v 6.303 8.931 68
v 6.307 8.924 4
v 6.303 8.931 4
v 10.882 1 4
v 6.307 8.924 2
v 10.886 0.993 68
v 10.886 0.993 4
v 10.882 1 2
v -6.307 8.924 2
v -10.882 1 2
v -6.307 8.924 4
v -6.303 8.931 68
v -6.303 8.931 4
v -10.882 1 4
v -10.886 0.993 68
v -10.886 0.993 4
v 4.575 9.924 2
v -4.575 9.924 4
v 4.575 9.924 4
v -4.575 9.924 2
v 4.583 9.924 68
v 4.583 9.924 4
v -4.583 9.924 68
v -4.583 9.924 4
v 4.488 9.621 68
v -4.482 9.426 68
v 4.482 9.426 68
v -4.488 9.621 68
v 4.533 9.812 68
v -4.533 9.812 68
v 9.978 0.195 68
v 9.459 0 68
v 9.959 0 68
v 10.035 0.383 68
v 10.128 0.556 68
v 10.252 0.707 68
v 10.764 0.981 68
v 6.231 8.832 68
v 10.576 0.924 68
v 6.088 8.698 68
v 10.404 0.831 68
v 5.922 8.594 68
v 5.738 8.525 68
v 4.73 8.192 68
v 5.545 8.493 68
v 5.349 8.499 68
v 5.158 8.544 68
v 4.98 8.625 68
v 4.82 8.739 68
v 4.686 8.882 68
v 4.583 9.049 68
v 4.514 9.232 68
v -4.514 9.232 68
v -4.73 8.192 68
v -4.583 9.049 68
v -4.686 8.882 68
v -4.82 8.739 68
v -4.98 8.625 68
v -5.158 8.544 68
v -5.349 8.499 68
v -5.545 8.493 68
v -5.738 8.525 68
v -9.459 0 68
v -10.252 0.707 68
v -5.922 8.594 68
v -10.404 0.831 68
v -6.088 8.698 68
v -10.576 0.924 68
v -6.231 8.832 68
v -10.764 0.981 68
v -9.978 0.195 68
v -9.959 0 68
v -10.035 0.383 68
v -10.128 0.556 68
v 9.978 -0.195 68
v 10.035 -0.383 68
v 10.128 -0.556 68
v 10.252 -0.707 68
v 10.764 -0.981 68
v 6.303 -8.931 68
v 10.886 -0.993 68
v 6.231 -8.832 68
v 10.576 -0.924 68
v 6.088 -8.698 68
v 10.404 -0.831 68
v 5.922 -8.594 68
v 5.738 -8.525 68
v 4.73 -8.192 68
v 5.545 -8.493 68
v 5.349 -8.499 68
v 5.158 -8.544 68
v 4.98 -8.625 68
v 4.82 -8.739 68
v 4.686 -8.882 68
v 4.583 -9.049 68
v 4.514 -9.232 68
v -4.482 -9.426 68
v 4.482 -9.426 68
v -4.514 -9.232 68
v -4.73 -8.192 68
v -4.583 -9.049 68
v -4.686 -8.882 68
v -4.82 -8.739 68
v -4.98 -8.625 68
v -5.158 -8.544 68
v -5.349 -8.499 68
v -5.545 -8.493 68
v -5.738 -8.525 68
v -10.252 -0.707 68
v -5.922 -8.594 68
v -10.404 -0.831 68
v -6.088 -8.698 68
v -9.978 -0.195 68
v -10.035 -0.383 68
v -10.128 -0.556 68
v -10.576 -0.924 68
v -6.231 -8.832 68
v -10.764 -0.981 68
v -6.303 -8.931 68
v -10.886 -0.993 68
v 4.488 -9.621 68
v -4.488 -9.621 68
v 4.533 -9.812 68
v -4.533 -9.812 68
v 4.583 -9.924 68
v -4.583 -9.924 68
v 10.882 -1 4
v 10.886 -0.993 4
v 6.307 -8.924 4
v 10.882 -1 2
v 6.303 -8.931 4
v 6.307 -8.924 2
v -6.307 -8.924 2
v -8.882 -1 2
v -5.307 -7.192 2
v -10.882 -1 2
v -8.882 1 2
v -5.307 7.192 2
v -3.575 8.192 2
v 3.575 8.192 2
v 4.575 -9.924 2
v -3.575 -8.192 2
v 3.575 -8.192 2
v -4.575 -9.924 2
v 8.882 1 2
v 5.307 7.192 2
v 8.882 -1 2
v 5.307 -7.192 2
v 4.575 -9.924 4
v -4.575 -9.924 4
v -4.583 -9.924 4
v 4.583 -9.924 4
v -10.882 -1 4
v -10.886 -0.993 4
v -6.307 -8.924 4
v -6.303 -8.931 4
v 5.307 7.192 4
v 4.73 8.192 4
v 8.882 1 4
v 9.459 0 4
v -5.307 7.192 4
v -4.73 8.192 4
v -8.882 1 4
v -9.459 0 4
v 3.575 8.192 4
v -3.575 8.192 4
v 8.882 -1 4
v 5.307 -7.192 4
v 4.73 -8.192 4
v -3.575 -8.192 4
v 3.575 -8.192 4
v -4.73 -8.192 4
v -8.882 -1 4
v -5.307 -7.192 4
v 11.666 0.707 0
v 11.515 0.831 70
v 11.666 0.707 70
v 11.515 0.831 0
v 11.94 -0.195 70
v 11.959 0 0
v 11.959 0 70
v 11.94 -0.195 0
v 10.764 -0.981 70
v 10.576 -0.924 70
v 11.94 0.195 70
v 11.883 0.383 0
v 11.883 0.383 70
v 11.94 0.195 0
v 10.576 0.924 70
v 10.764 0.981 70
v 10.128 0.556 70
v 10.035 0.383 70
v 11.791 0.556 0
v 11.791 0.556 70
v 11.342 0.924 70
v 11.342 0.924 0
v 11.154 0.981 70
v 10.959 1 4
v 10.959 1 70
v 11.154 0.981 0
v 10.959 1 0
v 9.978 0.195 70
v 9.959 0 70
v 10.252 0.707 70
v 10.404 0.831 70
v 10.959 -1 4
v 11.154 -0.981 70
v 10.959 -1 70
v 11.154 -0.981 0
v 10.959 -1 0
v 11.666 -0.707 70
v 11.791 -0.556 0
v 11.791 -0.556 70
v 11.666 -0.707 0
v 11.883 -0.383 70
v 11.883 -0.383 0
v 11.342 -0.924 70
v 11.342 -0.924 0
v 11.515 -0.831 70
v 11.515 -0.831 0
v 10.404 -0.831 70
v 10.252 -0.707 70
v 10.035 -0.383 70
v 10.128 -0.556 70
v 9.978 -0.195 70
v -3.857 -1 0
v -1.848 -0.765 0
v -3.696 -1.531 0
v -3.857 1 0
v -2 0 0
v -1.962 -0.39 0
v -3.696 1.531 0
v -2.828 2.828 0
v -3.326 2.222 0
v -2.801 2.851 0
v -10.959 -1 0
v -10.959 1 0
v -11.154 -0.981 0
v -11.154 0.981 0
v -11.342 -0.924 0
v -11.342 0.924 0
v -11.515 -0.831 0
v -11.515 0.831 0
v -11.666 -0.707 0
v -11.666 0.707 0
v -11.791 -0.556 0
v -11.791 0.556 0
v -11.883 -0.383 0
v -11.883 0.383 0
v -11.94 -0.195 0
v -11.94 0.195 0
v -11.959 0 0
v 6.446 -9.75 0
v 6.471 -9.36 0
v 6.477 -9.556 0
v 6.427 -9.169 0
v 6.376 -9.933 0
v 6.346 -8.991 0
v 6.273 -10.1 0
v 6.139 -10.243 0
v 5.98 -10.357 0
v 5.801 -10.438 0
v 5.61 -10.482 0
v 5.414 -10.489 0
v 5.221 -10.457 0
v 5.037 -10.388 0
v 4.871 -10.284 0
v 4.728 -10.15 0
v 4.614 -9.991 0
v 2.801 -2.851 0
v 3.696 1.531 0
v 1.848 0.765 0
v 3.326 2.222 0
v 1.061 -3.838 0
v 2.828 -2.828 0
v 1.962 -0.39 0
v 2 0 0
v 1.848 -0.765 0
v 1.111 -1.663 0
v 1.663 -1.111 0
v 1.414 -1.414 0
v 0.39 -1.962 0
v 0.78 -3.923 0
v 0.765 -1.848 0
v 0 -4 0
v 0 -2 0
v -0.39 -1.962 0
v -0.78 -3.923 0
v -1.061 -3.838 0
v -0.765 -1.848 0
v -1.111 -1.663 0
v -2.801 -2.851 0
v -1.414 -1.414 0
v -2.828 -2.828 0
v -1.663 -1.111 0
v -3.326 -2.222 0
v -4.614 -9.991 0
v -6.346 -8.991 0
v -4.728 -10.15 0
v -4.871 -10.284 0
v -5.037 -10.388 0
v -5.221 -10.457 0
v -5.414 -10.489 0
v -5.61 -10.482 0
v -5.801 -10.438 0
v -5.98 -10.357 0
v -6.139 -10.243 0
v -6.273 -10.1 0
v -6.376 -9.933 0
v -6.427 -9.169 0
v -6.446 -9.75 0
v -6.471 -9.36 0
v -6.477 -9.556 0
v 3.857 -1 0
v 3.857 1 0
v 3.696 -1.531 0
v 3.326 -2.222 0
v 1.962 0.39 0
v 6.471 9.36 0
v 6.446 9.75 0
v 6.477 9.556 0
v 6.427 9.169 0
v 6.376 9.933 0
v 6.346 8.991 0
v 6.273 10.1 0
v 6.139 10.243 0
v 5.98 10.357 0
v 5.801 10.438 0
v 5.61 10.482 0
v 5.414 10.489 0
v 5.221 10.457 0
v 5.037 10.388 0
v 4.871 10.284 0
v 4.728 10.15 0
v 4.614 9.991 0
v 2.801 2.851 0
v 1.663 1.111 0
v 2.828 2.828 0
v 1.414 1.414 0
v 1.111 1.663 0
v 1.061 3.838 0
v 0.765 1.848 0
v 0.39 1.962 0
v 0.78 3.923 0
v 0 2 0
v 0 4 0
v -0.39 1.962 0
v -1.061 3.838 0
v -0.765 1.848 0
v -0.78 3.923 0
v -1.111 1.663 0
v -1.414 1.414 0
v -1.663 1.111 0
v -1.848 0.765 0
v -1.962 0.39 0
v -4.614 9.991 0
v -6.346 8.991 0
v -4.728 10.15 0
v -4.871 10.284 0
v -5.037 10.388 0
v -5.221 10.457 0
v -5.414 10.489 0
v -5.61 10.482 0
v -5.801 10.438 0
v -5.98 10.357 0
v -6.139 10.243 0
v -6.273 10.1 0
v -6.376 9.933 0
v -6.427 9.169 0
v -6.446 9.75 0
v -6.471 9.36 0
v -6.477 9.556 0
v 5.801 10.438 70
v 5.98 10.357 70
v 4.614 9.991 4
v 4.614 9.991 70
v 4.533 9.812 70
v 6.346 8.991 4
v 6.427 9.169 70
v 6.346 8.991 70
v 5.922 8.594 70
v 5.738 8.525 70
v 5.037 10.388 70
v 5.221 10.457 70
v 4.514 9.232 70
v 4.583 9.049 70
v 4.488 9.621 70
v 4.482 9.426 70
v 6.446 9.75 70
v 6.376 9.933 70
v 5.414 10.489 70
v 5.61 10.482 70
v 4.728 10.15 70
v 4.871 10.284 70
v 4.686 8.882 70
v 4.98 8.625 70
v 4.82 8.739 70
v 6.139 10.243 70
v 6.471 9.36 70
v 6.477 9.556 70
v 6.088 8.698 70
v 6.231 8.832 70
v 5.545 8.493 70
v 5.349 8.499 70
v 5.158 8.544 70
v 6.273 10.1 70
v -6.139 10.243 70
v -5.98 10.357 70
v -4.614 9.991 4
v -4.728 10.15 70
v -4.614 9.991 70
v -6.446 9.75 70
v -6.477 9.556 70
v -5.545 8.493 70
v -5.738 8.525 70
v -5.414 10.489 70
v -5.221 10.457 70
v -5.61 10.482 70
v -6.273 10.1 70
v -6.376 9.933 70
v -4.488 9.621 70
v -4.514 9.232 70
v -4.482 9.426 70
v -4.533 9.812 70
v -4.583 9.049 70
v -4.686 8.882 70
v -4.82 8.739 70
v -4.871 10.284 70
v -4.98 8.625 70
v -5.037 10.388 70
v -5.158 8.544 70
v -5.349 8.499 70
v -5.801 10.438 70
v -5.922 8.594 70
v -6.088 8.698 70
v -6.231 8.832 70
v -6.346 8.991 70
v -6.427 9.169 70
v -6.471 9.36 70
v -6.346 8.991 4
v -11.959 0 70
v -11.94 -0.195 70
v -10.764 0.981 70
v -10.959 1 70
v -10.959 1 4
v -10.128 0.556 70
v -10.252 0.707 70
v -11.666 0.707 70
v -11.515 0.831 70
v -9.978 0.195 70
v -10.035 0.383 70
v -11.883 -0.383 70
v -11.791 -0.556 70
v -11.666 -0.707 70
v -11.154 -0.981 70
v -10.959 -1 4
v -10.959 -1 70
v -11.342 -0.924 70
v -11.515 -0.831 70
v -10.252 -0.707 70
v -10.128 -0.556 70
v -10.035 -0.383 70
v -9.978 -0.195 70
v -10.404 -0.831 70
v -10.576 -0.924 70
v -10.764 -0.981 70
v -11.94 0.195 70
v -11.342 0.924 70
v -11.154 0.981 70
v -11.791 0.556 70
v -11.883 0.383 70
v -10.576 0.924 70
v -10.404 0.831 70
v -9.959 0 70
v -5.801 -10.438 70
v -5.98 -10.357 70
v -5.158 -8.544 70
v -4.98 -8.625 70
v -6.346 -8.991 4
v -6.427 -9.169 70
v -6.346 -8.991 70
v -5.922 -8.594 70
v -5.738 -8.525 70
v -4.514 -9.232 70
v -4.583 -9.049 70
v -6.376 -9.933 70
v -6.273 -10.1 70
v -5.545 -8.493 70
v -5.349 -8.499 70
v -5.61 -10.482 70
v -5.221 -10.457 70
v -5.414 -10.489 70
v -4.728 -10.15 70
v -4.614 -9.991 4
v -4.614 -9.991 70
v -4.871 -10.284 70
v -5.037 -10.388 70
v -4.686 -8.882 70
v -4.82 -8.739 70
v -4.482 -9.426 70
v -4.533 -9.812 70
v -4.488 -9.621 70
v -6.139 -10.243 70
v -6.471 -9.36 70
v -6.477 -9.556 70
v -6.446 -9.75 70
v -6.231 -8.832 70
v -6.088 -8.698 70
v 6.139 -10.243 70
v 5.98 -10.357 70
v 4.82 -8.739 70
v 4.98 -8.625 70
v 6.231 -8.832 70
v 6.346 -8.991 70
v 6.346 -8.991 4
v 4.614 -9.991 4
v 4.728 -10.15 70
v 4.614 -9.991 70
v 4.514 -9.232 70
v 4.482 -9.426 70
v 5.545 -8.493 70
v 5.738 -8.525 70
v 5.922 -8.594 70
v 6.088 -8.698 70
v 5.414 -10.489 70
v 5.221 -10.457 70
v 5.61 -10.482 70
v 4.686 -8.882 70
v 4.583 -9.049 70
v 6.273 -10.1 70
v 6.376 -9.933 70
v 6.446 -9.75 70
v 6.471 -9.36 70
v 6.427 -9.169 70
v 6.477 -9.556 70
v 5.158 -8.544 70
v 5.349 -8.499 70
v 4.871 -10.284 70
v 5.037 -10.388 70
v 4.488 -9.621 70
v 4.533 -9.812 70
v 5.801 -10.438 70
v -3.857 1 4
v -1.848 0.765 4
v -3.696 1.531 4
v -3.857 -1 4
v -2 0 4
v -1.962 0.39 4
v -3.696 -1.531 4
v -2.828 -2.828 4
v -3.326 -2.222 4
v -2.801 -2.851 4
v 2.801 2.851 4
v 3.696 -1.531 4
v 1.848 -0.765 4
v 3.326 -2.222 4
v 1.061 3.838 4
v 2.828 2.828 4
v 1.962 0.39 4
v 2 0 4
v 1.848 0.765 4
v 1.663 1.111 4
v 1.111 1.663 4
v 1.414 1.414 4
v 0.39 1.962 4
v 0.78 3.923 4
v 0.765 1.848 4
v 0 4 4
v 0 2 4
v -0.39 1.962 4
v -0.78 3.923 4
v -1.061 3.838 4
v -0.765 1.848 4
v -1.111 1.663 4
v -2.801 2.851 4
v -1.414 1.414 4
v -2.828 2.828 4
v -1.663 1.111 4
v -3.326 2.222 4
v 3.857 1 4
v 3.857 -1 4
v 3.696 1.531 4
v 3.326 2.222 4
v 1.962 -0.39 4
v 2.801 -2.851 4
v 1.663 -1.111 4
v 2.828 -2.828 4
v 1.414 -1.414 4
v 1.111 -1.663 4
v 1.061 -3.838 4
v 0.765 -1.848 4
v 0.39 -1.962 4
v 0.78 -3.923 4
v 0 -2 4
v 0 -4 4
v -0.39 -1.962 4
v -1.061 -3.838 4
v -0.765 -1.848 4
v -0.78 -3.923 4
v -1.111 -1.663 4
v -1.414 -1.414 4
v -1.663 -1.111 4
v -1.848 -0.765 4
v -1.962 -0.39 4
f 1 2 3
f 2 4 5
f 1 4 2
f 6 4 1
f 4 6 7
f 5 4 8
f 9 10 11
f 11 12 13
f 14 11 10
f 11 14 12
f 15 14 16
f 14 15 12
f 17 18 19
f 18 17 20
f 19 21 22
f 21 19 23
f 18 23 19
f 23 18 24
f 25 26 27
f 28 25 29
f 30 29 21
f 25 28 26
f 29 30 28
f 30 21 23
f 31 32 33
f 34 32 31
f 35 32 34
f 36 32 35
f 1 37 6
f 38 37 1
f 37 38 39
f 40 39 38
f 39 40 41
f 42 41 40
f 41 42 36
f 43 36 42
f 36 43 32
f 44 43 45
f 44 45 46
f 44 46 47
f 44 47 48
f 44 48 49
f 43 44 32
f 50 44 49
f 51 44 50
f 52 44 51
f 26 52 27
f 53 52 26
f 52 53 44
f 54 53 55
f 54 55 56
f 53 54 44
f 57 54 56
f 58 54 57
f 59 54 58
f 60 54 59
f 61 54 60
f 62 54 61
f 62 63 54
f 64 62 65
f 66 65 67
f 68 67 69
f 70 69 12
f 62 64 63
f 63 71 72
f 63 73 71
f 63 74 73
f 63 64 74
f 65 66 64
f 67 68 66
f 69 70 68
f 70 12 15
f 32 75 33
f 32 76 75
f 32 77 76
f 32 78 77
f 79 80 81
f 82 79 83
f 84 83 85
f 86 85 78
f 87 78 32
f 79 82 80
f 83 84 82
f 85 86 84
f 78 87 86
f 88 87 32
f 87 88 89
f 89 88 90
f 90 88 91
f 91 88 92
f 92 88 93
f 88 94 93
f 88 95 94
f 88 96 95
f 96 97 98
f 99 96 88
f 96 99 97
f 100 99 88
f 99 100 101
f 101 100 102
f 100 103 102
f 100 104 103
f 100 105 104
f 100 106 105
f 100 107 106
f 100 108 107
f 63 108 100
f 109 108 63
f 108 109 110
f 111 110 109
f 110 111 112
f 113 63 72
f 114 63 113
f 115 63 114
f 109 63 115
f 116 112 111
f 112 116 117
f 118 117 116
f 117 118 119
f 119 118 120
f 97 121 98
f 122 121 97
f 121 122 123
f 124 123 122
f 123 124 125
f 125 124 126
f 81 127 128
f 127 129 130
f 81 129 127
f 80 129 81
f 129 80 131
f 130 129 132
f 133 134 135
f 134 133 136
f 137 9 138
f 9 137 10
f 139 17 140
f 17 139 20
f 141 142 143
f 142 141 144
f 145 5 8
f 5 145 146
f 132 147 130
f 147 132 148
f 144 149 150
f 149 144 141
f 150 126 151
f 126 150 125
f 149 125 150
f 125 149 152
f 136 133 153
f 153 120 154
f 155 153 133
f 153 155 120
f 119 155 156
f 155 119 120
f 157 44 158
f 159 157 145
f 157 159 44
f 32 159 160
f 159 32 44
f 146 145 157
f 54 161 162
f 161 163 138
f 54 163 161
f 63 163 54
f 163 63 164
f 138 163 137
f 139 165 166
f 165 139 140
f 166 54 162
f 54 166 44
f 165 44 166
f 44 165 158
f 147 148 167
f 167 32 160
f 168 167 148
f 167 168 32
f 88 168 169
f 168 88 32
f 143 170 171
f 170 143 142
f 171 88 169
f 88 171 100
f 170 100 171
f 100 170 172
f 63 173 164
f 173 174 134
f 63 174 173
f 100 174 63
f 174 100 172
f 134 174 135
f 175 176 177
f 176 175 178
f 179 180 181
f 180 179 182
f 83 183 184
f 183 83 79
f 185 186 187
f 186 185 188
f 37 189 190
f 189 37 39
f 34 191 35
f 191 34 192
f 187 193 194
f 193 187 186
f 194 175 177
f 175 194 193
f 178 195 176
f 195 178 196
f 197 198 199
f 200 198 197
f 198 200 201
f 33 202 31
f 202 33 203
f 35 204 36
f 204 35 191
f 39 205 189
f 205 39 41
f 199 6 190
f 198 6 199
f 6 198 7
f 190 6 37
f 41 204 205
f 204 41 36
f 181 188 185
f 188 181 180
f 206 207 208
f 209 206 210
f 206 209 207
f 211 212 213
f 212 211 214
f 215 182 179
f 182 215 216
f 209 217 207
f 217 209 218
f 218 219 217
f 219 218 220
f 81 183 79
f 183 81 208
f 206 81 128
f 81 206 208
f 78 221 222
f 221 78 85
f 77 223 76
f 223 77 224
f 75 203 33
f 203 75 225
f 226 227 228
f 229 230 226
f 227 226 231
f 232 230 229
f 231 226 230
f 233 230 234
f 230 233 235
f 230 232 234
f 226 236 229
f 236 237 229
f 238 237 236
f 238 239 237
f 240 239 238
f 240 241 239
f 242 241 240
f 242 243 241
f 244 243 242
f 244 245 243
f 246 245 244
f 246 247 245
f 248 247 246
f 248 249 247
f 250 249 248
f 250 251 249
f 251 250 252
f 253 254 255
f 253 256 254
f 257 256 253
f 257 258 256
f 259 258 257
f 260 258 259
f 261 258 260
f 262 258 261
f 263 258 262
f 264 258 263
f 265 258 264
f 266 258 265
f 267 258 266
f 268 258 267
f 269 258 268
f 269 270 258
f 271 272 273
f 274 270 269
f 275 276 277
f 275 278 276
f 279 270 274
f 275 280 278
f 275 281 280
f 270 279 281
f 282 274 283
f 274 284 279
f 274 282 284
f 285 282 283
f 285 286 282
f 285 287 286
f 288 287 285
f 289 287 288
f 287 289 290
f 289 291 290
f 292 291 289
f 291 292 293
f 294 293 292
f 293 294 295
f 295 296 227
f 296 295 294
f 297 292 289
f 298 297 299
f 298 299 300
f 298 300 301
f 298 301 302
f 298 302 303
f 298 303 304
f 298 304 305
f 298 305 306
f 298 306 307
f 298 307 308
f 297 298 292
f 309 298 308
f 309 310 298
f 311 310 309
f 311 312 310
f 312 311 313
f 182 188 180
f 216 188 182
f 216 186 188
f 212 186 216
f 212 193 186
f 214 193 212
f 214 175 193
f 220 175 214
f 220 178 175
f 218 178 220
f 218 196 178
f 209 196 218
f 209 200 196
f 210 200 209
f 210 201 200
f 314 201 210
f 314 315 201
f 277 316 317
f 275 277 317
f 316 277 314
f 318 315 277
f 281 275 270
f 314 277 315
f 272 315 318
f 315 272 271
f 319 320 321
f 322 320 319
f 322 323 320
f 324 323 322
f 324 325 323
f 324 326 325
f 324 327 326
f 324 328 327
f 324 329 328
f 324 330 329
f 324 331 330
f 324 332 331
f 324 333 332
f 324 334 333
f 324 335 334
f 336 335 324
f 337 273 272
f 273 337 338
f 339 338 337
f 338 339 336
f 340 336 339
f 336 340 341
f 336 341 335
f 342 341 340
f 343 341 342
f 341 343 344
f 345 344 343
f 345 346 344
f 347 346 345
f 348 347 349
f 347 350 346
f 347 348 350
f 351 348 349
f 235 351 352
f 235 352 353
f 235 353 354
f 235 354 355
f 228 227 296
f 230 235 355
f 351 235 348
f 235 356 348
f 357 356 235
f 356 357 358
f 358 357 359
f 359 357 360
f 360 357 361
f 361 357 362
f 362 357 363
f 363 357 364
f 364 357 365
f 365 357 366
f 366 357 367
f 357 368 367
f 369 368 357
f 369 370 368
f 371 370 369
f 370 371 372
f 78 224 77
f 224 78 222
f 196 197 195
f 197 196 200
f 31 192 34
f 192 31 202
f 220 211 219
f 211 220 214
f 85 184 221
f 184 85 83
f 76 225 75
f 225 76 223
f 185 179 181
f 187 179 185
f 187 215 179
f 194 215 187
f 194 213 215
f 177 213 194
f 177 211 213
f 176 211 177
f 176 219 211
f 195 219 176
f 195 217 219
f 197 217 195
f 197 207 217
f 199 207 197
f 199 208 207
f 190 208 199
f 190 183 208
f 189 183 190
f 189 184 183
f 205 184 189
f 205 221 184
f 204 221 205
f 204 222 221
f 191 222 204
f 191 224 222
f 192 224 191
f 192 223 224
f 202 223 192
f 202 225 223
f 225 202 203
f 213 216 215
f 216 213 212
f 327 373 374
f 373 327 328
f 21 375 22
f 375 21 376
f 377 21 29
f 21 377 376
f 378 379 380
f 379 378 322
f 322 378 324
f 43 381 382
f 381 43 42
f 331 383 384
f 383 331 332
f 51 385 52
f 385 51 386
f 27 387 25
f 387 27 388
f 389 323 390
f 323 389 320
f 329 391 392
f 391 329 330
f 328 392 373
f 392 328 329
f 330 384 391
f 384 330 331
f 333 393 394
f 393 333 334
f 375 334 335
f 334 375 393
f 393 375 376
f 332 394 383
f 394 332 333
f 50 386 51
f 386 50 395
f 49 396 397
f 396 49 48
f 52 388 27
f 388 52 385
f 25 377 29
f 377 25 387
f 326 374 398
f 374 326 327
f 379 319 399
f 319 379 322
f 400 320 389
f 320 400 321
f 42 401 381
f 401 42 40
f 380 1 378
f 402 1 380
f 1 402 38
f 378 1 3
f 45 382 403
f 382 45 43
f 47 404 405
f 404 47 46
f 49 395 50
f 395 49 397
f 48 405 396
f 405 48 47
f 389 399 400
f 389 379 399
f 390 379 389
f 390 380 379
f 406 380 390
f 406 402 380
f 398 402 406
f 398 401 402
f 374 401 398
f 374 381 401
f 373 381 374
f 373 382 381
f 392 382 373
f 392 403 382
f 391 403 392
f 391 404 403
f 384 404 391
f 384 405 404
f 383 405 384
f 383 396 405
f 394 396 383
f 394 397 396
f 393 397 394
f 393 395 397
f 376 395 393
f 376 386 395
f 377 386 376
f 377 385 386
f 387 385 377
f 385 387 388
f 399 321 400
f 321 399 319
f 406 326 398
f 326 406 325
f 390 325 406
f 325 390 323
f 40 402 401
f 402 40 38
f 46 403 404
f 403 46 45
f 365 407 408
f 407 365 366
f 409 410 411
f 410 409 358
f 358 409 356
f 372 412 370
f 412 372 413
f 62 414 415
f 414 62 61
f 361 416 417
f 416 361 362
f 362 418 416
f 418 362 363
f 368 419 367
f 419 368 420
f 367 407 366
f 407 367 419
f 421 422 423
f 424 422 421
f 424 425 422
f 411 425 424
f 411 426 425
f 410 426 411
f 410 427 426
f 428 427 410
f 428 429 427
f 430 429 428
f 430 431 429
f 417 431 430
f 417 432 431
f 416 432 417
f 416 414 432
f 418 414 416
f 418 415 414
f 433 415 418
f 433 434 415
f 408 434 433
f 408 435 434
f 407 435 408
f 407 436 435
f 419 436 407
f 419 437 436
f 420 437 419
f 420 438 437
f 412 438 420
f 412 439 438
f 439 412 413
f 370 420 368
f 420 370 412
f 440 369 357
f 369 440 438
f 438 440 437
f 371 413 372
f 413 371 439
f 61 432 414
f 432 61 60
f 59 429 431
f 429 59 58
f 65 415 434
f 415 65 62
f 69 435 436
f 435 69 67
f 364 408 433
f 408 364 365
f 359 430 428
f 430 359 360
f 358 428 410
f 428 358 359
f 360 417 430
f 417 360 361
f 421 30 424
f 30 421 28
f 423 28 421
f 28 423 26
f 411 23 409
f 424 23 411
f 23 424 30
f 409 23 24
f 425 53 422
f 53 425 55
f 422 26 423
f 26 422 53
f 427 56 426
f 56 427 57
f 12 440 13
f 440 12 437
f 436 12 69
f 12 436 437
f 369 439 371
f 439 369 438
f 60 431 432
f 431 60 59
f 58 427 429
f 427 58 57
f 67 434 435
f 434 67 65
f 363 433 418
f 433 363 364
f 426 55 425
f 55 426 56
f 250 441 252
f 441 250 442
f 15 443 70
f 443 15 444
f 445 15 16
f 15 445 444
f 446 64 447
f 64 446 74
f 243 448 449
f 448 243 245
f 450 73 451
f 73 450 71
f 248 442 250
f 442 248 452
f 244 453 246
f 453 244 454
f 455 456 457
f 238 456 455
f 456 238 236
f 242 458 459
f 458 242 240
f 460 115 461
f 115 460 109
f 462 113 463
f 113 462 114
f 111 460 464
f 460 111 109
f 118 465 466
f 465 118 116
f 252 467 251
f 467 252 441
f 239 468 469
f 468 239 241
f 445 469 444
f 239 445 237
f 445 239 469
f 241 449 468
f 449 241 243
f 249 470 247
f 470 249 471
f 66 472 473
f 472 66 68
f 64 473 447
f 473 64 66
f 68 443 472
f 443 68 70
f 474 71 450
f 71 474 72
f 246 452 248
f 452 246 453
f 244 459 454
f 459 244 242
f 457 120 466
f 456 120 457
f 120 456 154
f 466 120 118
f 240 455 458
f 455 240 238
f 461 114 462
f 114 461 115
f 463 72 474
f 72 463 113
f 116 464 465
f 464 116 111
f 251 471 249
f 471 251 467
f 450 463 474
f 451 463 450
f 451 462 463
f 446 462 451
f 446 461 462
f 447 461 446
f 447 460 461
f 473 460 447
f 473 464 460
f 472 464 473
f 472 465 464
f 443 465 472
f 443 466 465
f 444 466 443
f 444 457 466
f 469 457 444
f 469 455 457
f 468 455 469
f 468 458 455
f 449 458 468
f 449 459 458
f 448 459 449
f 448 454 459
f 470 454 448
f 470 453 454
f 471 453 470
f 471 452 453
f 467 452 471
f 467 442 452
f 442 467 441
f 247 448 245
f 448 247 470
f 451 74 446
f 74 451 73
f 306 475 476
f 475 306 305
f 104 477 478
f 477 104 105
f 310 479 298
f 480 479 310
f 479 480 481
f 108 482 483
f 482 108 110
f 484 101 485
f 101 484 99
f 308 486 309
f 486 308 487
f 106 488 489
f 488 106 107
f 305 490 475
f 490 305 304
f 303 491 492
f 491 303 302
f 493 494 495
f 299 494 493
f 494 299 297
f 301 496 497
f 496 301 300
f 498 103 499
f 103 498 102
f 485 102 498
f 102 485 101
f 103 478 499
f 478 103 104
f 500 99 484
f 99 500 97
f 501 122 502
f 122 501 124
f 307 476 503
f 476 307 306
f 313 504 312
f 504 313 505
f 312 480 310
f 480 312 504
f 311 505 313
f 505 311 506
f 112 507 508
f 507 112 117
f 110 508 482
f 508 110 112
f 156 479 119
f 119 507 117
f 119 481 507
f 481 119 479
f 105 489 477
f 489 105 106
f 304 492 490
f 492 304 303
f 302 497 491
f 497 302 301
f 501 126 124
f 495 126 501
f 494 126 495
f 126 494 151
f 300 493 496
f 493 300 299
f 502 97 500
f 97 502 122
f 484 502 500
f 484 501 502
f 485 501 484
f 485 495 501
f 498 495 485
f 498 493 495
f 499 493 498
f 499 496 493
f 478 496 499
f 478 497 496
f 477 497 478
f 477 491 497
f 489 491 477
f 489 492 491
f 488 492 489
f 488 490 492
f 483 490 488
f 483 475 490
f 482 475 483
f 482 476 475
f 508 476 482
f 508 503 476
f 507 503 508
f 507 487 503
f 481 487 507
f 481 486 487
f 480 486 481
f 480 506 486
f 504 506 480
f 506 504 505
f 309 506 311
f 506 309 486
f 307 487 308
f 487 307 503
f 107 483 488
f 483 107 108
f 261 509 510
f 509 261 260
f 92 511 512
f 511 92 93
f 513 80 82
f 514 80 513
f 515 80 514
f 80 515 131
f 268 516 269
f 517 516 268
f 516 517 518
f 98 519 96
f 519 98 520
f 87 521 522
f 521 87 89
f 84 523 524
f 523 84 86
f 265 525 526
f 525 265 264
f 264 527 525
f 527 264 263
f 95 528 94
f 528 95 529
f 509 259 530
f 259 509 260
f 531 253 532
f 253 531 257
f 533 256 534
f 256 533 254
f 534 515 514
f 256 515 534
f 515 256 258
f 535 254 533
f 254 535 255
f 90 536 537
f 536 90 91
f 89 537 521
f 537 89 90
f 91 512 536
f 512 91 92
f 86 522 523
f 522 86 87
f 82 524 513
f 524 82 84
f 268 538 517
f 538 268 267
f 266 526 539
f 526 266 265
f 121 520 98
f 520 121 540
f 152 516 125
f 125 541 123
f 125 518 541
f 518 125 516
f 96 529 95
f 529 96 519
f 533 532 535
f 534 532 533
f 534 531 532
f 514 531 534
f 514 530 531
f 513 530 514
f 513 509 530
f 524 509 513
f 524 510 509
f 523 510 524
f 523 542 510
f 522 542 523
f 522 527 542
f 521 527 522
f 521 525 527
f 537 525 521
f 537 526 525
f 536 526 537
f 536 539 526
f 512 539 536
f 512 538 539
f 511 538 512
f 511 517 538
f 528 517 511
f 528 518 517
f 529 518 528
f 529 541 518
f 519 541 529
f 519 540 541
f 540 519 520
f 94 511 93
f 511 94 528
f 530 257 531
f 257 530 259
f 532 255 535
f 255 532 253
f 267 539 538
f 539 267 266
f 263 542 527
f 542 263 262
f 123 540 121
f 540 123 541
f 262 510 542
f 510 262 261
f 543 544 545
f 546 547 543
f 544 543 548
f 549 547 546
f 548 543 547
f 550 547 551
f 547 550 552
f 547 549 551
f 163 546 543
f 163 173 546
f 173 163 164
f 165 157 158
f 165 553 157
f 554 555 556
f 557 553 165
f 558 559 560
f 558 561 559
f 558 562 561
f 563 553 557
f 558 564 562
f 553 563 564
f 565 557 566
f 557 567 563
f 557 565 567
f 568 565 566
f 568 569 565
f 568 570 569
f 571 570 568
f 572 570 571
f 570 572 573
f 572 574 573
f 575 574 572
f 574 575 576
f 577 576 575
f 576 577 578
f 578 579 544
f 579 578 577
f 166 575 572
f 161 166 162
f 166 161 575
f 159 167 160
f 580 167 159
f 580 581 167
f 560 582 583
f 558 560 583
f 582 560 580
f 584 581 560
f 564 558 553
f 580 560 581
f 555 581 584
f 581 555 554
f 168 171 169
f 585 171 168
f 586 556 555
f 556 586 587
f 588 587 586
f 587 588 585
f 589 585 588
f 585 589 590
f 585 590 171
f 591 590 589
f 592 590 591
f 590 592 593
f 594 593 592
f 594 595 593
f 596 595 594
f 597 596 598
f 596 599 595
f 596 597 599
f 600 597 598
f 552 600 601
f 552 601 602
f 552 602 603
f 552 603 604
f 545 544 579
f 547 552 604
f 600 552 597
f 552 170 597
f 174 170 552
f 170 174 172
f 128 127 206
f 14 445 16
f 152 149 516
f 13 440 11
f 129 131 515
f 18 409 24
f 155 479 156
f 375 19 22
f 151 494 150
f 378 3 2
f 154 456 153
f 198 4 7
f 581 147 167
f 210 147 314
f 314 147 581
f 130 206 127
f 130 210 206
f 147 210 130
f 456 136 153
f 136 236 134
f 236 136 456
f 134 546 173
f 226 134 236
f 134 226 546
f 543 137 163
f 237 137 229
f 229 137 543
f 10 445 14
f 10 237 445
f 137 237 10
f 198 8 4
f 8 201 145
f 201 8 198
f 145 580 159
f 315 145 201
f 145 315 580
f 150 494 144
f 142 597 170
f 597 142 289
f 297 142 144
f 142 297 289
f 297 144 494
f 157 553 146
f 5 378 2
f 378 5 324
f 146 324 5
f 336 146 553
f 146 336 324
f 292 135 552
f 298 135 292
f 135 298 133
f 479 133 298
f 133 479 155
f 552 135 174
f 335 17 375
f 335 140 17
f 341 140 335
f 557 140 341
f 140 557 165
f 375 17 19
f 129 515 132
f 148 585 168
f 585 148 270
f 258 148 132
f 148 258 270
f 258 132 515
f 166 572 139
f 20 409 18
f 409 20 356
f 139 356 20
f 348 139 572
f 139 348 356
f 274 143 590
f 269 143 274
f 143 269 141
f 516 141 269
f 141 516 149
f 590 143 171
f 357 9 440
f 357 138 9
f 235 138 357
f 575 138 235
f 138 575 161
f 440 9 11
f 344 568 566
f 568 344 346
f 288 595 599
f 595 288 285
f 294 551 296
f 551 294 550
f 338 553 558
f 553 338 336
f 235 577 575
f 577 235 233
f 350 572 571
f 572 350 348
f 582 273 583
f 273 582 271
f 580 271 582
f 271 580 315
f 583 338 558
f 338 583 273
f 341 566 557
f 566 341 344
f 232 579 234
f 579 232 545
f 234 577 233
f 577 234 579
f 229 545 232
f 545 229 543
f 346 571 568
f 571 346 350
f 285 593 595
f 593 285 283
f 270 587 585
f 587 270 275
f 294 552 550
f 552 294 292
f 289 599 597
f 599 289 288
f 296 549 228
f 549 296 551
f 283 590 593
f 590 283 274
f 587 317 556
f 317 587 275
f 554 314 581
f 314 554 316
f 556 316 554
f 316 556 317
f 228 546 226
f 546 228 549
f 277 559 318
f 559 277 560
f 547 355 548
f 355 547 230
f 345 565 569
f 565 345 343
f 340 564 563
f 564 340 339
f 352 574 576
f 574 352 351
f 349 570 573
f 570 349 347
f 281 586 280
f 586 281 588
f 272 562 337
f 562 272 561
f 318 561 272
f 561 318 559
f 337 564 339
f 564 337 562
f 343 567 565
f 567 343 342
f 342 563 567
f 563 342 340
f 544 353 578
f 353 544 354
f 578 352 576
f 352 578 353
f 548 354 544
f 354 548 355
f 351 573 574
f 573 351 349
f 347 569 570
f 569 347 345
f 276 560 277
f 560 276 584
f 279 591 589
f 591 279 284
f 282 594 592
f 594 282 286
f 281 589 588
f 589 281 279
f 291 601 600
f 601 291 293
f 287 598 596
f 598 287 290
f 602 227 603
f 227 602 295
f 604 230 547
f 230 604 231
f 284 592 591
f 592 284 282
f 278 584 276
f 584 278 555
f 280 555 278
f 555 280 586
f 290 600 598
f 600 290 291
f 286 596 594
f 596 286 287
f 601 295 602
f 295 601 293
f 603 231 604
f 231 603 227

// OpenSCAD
s = 6;
d = 12 * s / PI;
h = 66;

translate([0, 0, 2])
difference() {
    cylinder(h=h, d=d, $fa=360/s);
    
    translate([0, 0, -1])
    cylinder(h=h+2, d=d-4, $fa=360/s);
}

for (i = [0:s]) {
    rotate([0, 0, i * 360 / s])
    translate([d/2-0.5, 0, 0])
    cylinder(h=h+4, d=2, $fn=32);
}

difference() {
    union() {
        for (i = [0:s]) {
            rotate([0, 0, i * 360 / s])
            translate([0, 0, 2])
            cube([d-1, 2, 4], center=true);
        }
        cylinder(h=4, d=8, $fn=32);
    }
    translate([0, 0, -1])
    cylinder(h=6, d=4, $fn=32);
}
